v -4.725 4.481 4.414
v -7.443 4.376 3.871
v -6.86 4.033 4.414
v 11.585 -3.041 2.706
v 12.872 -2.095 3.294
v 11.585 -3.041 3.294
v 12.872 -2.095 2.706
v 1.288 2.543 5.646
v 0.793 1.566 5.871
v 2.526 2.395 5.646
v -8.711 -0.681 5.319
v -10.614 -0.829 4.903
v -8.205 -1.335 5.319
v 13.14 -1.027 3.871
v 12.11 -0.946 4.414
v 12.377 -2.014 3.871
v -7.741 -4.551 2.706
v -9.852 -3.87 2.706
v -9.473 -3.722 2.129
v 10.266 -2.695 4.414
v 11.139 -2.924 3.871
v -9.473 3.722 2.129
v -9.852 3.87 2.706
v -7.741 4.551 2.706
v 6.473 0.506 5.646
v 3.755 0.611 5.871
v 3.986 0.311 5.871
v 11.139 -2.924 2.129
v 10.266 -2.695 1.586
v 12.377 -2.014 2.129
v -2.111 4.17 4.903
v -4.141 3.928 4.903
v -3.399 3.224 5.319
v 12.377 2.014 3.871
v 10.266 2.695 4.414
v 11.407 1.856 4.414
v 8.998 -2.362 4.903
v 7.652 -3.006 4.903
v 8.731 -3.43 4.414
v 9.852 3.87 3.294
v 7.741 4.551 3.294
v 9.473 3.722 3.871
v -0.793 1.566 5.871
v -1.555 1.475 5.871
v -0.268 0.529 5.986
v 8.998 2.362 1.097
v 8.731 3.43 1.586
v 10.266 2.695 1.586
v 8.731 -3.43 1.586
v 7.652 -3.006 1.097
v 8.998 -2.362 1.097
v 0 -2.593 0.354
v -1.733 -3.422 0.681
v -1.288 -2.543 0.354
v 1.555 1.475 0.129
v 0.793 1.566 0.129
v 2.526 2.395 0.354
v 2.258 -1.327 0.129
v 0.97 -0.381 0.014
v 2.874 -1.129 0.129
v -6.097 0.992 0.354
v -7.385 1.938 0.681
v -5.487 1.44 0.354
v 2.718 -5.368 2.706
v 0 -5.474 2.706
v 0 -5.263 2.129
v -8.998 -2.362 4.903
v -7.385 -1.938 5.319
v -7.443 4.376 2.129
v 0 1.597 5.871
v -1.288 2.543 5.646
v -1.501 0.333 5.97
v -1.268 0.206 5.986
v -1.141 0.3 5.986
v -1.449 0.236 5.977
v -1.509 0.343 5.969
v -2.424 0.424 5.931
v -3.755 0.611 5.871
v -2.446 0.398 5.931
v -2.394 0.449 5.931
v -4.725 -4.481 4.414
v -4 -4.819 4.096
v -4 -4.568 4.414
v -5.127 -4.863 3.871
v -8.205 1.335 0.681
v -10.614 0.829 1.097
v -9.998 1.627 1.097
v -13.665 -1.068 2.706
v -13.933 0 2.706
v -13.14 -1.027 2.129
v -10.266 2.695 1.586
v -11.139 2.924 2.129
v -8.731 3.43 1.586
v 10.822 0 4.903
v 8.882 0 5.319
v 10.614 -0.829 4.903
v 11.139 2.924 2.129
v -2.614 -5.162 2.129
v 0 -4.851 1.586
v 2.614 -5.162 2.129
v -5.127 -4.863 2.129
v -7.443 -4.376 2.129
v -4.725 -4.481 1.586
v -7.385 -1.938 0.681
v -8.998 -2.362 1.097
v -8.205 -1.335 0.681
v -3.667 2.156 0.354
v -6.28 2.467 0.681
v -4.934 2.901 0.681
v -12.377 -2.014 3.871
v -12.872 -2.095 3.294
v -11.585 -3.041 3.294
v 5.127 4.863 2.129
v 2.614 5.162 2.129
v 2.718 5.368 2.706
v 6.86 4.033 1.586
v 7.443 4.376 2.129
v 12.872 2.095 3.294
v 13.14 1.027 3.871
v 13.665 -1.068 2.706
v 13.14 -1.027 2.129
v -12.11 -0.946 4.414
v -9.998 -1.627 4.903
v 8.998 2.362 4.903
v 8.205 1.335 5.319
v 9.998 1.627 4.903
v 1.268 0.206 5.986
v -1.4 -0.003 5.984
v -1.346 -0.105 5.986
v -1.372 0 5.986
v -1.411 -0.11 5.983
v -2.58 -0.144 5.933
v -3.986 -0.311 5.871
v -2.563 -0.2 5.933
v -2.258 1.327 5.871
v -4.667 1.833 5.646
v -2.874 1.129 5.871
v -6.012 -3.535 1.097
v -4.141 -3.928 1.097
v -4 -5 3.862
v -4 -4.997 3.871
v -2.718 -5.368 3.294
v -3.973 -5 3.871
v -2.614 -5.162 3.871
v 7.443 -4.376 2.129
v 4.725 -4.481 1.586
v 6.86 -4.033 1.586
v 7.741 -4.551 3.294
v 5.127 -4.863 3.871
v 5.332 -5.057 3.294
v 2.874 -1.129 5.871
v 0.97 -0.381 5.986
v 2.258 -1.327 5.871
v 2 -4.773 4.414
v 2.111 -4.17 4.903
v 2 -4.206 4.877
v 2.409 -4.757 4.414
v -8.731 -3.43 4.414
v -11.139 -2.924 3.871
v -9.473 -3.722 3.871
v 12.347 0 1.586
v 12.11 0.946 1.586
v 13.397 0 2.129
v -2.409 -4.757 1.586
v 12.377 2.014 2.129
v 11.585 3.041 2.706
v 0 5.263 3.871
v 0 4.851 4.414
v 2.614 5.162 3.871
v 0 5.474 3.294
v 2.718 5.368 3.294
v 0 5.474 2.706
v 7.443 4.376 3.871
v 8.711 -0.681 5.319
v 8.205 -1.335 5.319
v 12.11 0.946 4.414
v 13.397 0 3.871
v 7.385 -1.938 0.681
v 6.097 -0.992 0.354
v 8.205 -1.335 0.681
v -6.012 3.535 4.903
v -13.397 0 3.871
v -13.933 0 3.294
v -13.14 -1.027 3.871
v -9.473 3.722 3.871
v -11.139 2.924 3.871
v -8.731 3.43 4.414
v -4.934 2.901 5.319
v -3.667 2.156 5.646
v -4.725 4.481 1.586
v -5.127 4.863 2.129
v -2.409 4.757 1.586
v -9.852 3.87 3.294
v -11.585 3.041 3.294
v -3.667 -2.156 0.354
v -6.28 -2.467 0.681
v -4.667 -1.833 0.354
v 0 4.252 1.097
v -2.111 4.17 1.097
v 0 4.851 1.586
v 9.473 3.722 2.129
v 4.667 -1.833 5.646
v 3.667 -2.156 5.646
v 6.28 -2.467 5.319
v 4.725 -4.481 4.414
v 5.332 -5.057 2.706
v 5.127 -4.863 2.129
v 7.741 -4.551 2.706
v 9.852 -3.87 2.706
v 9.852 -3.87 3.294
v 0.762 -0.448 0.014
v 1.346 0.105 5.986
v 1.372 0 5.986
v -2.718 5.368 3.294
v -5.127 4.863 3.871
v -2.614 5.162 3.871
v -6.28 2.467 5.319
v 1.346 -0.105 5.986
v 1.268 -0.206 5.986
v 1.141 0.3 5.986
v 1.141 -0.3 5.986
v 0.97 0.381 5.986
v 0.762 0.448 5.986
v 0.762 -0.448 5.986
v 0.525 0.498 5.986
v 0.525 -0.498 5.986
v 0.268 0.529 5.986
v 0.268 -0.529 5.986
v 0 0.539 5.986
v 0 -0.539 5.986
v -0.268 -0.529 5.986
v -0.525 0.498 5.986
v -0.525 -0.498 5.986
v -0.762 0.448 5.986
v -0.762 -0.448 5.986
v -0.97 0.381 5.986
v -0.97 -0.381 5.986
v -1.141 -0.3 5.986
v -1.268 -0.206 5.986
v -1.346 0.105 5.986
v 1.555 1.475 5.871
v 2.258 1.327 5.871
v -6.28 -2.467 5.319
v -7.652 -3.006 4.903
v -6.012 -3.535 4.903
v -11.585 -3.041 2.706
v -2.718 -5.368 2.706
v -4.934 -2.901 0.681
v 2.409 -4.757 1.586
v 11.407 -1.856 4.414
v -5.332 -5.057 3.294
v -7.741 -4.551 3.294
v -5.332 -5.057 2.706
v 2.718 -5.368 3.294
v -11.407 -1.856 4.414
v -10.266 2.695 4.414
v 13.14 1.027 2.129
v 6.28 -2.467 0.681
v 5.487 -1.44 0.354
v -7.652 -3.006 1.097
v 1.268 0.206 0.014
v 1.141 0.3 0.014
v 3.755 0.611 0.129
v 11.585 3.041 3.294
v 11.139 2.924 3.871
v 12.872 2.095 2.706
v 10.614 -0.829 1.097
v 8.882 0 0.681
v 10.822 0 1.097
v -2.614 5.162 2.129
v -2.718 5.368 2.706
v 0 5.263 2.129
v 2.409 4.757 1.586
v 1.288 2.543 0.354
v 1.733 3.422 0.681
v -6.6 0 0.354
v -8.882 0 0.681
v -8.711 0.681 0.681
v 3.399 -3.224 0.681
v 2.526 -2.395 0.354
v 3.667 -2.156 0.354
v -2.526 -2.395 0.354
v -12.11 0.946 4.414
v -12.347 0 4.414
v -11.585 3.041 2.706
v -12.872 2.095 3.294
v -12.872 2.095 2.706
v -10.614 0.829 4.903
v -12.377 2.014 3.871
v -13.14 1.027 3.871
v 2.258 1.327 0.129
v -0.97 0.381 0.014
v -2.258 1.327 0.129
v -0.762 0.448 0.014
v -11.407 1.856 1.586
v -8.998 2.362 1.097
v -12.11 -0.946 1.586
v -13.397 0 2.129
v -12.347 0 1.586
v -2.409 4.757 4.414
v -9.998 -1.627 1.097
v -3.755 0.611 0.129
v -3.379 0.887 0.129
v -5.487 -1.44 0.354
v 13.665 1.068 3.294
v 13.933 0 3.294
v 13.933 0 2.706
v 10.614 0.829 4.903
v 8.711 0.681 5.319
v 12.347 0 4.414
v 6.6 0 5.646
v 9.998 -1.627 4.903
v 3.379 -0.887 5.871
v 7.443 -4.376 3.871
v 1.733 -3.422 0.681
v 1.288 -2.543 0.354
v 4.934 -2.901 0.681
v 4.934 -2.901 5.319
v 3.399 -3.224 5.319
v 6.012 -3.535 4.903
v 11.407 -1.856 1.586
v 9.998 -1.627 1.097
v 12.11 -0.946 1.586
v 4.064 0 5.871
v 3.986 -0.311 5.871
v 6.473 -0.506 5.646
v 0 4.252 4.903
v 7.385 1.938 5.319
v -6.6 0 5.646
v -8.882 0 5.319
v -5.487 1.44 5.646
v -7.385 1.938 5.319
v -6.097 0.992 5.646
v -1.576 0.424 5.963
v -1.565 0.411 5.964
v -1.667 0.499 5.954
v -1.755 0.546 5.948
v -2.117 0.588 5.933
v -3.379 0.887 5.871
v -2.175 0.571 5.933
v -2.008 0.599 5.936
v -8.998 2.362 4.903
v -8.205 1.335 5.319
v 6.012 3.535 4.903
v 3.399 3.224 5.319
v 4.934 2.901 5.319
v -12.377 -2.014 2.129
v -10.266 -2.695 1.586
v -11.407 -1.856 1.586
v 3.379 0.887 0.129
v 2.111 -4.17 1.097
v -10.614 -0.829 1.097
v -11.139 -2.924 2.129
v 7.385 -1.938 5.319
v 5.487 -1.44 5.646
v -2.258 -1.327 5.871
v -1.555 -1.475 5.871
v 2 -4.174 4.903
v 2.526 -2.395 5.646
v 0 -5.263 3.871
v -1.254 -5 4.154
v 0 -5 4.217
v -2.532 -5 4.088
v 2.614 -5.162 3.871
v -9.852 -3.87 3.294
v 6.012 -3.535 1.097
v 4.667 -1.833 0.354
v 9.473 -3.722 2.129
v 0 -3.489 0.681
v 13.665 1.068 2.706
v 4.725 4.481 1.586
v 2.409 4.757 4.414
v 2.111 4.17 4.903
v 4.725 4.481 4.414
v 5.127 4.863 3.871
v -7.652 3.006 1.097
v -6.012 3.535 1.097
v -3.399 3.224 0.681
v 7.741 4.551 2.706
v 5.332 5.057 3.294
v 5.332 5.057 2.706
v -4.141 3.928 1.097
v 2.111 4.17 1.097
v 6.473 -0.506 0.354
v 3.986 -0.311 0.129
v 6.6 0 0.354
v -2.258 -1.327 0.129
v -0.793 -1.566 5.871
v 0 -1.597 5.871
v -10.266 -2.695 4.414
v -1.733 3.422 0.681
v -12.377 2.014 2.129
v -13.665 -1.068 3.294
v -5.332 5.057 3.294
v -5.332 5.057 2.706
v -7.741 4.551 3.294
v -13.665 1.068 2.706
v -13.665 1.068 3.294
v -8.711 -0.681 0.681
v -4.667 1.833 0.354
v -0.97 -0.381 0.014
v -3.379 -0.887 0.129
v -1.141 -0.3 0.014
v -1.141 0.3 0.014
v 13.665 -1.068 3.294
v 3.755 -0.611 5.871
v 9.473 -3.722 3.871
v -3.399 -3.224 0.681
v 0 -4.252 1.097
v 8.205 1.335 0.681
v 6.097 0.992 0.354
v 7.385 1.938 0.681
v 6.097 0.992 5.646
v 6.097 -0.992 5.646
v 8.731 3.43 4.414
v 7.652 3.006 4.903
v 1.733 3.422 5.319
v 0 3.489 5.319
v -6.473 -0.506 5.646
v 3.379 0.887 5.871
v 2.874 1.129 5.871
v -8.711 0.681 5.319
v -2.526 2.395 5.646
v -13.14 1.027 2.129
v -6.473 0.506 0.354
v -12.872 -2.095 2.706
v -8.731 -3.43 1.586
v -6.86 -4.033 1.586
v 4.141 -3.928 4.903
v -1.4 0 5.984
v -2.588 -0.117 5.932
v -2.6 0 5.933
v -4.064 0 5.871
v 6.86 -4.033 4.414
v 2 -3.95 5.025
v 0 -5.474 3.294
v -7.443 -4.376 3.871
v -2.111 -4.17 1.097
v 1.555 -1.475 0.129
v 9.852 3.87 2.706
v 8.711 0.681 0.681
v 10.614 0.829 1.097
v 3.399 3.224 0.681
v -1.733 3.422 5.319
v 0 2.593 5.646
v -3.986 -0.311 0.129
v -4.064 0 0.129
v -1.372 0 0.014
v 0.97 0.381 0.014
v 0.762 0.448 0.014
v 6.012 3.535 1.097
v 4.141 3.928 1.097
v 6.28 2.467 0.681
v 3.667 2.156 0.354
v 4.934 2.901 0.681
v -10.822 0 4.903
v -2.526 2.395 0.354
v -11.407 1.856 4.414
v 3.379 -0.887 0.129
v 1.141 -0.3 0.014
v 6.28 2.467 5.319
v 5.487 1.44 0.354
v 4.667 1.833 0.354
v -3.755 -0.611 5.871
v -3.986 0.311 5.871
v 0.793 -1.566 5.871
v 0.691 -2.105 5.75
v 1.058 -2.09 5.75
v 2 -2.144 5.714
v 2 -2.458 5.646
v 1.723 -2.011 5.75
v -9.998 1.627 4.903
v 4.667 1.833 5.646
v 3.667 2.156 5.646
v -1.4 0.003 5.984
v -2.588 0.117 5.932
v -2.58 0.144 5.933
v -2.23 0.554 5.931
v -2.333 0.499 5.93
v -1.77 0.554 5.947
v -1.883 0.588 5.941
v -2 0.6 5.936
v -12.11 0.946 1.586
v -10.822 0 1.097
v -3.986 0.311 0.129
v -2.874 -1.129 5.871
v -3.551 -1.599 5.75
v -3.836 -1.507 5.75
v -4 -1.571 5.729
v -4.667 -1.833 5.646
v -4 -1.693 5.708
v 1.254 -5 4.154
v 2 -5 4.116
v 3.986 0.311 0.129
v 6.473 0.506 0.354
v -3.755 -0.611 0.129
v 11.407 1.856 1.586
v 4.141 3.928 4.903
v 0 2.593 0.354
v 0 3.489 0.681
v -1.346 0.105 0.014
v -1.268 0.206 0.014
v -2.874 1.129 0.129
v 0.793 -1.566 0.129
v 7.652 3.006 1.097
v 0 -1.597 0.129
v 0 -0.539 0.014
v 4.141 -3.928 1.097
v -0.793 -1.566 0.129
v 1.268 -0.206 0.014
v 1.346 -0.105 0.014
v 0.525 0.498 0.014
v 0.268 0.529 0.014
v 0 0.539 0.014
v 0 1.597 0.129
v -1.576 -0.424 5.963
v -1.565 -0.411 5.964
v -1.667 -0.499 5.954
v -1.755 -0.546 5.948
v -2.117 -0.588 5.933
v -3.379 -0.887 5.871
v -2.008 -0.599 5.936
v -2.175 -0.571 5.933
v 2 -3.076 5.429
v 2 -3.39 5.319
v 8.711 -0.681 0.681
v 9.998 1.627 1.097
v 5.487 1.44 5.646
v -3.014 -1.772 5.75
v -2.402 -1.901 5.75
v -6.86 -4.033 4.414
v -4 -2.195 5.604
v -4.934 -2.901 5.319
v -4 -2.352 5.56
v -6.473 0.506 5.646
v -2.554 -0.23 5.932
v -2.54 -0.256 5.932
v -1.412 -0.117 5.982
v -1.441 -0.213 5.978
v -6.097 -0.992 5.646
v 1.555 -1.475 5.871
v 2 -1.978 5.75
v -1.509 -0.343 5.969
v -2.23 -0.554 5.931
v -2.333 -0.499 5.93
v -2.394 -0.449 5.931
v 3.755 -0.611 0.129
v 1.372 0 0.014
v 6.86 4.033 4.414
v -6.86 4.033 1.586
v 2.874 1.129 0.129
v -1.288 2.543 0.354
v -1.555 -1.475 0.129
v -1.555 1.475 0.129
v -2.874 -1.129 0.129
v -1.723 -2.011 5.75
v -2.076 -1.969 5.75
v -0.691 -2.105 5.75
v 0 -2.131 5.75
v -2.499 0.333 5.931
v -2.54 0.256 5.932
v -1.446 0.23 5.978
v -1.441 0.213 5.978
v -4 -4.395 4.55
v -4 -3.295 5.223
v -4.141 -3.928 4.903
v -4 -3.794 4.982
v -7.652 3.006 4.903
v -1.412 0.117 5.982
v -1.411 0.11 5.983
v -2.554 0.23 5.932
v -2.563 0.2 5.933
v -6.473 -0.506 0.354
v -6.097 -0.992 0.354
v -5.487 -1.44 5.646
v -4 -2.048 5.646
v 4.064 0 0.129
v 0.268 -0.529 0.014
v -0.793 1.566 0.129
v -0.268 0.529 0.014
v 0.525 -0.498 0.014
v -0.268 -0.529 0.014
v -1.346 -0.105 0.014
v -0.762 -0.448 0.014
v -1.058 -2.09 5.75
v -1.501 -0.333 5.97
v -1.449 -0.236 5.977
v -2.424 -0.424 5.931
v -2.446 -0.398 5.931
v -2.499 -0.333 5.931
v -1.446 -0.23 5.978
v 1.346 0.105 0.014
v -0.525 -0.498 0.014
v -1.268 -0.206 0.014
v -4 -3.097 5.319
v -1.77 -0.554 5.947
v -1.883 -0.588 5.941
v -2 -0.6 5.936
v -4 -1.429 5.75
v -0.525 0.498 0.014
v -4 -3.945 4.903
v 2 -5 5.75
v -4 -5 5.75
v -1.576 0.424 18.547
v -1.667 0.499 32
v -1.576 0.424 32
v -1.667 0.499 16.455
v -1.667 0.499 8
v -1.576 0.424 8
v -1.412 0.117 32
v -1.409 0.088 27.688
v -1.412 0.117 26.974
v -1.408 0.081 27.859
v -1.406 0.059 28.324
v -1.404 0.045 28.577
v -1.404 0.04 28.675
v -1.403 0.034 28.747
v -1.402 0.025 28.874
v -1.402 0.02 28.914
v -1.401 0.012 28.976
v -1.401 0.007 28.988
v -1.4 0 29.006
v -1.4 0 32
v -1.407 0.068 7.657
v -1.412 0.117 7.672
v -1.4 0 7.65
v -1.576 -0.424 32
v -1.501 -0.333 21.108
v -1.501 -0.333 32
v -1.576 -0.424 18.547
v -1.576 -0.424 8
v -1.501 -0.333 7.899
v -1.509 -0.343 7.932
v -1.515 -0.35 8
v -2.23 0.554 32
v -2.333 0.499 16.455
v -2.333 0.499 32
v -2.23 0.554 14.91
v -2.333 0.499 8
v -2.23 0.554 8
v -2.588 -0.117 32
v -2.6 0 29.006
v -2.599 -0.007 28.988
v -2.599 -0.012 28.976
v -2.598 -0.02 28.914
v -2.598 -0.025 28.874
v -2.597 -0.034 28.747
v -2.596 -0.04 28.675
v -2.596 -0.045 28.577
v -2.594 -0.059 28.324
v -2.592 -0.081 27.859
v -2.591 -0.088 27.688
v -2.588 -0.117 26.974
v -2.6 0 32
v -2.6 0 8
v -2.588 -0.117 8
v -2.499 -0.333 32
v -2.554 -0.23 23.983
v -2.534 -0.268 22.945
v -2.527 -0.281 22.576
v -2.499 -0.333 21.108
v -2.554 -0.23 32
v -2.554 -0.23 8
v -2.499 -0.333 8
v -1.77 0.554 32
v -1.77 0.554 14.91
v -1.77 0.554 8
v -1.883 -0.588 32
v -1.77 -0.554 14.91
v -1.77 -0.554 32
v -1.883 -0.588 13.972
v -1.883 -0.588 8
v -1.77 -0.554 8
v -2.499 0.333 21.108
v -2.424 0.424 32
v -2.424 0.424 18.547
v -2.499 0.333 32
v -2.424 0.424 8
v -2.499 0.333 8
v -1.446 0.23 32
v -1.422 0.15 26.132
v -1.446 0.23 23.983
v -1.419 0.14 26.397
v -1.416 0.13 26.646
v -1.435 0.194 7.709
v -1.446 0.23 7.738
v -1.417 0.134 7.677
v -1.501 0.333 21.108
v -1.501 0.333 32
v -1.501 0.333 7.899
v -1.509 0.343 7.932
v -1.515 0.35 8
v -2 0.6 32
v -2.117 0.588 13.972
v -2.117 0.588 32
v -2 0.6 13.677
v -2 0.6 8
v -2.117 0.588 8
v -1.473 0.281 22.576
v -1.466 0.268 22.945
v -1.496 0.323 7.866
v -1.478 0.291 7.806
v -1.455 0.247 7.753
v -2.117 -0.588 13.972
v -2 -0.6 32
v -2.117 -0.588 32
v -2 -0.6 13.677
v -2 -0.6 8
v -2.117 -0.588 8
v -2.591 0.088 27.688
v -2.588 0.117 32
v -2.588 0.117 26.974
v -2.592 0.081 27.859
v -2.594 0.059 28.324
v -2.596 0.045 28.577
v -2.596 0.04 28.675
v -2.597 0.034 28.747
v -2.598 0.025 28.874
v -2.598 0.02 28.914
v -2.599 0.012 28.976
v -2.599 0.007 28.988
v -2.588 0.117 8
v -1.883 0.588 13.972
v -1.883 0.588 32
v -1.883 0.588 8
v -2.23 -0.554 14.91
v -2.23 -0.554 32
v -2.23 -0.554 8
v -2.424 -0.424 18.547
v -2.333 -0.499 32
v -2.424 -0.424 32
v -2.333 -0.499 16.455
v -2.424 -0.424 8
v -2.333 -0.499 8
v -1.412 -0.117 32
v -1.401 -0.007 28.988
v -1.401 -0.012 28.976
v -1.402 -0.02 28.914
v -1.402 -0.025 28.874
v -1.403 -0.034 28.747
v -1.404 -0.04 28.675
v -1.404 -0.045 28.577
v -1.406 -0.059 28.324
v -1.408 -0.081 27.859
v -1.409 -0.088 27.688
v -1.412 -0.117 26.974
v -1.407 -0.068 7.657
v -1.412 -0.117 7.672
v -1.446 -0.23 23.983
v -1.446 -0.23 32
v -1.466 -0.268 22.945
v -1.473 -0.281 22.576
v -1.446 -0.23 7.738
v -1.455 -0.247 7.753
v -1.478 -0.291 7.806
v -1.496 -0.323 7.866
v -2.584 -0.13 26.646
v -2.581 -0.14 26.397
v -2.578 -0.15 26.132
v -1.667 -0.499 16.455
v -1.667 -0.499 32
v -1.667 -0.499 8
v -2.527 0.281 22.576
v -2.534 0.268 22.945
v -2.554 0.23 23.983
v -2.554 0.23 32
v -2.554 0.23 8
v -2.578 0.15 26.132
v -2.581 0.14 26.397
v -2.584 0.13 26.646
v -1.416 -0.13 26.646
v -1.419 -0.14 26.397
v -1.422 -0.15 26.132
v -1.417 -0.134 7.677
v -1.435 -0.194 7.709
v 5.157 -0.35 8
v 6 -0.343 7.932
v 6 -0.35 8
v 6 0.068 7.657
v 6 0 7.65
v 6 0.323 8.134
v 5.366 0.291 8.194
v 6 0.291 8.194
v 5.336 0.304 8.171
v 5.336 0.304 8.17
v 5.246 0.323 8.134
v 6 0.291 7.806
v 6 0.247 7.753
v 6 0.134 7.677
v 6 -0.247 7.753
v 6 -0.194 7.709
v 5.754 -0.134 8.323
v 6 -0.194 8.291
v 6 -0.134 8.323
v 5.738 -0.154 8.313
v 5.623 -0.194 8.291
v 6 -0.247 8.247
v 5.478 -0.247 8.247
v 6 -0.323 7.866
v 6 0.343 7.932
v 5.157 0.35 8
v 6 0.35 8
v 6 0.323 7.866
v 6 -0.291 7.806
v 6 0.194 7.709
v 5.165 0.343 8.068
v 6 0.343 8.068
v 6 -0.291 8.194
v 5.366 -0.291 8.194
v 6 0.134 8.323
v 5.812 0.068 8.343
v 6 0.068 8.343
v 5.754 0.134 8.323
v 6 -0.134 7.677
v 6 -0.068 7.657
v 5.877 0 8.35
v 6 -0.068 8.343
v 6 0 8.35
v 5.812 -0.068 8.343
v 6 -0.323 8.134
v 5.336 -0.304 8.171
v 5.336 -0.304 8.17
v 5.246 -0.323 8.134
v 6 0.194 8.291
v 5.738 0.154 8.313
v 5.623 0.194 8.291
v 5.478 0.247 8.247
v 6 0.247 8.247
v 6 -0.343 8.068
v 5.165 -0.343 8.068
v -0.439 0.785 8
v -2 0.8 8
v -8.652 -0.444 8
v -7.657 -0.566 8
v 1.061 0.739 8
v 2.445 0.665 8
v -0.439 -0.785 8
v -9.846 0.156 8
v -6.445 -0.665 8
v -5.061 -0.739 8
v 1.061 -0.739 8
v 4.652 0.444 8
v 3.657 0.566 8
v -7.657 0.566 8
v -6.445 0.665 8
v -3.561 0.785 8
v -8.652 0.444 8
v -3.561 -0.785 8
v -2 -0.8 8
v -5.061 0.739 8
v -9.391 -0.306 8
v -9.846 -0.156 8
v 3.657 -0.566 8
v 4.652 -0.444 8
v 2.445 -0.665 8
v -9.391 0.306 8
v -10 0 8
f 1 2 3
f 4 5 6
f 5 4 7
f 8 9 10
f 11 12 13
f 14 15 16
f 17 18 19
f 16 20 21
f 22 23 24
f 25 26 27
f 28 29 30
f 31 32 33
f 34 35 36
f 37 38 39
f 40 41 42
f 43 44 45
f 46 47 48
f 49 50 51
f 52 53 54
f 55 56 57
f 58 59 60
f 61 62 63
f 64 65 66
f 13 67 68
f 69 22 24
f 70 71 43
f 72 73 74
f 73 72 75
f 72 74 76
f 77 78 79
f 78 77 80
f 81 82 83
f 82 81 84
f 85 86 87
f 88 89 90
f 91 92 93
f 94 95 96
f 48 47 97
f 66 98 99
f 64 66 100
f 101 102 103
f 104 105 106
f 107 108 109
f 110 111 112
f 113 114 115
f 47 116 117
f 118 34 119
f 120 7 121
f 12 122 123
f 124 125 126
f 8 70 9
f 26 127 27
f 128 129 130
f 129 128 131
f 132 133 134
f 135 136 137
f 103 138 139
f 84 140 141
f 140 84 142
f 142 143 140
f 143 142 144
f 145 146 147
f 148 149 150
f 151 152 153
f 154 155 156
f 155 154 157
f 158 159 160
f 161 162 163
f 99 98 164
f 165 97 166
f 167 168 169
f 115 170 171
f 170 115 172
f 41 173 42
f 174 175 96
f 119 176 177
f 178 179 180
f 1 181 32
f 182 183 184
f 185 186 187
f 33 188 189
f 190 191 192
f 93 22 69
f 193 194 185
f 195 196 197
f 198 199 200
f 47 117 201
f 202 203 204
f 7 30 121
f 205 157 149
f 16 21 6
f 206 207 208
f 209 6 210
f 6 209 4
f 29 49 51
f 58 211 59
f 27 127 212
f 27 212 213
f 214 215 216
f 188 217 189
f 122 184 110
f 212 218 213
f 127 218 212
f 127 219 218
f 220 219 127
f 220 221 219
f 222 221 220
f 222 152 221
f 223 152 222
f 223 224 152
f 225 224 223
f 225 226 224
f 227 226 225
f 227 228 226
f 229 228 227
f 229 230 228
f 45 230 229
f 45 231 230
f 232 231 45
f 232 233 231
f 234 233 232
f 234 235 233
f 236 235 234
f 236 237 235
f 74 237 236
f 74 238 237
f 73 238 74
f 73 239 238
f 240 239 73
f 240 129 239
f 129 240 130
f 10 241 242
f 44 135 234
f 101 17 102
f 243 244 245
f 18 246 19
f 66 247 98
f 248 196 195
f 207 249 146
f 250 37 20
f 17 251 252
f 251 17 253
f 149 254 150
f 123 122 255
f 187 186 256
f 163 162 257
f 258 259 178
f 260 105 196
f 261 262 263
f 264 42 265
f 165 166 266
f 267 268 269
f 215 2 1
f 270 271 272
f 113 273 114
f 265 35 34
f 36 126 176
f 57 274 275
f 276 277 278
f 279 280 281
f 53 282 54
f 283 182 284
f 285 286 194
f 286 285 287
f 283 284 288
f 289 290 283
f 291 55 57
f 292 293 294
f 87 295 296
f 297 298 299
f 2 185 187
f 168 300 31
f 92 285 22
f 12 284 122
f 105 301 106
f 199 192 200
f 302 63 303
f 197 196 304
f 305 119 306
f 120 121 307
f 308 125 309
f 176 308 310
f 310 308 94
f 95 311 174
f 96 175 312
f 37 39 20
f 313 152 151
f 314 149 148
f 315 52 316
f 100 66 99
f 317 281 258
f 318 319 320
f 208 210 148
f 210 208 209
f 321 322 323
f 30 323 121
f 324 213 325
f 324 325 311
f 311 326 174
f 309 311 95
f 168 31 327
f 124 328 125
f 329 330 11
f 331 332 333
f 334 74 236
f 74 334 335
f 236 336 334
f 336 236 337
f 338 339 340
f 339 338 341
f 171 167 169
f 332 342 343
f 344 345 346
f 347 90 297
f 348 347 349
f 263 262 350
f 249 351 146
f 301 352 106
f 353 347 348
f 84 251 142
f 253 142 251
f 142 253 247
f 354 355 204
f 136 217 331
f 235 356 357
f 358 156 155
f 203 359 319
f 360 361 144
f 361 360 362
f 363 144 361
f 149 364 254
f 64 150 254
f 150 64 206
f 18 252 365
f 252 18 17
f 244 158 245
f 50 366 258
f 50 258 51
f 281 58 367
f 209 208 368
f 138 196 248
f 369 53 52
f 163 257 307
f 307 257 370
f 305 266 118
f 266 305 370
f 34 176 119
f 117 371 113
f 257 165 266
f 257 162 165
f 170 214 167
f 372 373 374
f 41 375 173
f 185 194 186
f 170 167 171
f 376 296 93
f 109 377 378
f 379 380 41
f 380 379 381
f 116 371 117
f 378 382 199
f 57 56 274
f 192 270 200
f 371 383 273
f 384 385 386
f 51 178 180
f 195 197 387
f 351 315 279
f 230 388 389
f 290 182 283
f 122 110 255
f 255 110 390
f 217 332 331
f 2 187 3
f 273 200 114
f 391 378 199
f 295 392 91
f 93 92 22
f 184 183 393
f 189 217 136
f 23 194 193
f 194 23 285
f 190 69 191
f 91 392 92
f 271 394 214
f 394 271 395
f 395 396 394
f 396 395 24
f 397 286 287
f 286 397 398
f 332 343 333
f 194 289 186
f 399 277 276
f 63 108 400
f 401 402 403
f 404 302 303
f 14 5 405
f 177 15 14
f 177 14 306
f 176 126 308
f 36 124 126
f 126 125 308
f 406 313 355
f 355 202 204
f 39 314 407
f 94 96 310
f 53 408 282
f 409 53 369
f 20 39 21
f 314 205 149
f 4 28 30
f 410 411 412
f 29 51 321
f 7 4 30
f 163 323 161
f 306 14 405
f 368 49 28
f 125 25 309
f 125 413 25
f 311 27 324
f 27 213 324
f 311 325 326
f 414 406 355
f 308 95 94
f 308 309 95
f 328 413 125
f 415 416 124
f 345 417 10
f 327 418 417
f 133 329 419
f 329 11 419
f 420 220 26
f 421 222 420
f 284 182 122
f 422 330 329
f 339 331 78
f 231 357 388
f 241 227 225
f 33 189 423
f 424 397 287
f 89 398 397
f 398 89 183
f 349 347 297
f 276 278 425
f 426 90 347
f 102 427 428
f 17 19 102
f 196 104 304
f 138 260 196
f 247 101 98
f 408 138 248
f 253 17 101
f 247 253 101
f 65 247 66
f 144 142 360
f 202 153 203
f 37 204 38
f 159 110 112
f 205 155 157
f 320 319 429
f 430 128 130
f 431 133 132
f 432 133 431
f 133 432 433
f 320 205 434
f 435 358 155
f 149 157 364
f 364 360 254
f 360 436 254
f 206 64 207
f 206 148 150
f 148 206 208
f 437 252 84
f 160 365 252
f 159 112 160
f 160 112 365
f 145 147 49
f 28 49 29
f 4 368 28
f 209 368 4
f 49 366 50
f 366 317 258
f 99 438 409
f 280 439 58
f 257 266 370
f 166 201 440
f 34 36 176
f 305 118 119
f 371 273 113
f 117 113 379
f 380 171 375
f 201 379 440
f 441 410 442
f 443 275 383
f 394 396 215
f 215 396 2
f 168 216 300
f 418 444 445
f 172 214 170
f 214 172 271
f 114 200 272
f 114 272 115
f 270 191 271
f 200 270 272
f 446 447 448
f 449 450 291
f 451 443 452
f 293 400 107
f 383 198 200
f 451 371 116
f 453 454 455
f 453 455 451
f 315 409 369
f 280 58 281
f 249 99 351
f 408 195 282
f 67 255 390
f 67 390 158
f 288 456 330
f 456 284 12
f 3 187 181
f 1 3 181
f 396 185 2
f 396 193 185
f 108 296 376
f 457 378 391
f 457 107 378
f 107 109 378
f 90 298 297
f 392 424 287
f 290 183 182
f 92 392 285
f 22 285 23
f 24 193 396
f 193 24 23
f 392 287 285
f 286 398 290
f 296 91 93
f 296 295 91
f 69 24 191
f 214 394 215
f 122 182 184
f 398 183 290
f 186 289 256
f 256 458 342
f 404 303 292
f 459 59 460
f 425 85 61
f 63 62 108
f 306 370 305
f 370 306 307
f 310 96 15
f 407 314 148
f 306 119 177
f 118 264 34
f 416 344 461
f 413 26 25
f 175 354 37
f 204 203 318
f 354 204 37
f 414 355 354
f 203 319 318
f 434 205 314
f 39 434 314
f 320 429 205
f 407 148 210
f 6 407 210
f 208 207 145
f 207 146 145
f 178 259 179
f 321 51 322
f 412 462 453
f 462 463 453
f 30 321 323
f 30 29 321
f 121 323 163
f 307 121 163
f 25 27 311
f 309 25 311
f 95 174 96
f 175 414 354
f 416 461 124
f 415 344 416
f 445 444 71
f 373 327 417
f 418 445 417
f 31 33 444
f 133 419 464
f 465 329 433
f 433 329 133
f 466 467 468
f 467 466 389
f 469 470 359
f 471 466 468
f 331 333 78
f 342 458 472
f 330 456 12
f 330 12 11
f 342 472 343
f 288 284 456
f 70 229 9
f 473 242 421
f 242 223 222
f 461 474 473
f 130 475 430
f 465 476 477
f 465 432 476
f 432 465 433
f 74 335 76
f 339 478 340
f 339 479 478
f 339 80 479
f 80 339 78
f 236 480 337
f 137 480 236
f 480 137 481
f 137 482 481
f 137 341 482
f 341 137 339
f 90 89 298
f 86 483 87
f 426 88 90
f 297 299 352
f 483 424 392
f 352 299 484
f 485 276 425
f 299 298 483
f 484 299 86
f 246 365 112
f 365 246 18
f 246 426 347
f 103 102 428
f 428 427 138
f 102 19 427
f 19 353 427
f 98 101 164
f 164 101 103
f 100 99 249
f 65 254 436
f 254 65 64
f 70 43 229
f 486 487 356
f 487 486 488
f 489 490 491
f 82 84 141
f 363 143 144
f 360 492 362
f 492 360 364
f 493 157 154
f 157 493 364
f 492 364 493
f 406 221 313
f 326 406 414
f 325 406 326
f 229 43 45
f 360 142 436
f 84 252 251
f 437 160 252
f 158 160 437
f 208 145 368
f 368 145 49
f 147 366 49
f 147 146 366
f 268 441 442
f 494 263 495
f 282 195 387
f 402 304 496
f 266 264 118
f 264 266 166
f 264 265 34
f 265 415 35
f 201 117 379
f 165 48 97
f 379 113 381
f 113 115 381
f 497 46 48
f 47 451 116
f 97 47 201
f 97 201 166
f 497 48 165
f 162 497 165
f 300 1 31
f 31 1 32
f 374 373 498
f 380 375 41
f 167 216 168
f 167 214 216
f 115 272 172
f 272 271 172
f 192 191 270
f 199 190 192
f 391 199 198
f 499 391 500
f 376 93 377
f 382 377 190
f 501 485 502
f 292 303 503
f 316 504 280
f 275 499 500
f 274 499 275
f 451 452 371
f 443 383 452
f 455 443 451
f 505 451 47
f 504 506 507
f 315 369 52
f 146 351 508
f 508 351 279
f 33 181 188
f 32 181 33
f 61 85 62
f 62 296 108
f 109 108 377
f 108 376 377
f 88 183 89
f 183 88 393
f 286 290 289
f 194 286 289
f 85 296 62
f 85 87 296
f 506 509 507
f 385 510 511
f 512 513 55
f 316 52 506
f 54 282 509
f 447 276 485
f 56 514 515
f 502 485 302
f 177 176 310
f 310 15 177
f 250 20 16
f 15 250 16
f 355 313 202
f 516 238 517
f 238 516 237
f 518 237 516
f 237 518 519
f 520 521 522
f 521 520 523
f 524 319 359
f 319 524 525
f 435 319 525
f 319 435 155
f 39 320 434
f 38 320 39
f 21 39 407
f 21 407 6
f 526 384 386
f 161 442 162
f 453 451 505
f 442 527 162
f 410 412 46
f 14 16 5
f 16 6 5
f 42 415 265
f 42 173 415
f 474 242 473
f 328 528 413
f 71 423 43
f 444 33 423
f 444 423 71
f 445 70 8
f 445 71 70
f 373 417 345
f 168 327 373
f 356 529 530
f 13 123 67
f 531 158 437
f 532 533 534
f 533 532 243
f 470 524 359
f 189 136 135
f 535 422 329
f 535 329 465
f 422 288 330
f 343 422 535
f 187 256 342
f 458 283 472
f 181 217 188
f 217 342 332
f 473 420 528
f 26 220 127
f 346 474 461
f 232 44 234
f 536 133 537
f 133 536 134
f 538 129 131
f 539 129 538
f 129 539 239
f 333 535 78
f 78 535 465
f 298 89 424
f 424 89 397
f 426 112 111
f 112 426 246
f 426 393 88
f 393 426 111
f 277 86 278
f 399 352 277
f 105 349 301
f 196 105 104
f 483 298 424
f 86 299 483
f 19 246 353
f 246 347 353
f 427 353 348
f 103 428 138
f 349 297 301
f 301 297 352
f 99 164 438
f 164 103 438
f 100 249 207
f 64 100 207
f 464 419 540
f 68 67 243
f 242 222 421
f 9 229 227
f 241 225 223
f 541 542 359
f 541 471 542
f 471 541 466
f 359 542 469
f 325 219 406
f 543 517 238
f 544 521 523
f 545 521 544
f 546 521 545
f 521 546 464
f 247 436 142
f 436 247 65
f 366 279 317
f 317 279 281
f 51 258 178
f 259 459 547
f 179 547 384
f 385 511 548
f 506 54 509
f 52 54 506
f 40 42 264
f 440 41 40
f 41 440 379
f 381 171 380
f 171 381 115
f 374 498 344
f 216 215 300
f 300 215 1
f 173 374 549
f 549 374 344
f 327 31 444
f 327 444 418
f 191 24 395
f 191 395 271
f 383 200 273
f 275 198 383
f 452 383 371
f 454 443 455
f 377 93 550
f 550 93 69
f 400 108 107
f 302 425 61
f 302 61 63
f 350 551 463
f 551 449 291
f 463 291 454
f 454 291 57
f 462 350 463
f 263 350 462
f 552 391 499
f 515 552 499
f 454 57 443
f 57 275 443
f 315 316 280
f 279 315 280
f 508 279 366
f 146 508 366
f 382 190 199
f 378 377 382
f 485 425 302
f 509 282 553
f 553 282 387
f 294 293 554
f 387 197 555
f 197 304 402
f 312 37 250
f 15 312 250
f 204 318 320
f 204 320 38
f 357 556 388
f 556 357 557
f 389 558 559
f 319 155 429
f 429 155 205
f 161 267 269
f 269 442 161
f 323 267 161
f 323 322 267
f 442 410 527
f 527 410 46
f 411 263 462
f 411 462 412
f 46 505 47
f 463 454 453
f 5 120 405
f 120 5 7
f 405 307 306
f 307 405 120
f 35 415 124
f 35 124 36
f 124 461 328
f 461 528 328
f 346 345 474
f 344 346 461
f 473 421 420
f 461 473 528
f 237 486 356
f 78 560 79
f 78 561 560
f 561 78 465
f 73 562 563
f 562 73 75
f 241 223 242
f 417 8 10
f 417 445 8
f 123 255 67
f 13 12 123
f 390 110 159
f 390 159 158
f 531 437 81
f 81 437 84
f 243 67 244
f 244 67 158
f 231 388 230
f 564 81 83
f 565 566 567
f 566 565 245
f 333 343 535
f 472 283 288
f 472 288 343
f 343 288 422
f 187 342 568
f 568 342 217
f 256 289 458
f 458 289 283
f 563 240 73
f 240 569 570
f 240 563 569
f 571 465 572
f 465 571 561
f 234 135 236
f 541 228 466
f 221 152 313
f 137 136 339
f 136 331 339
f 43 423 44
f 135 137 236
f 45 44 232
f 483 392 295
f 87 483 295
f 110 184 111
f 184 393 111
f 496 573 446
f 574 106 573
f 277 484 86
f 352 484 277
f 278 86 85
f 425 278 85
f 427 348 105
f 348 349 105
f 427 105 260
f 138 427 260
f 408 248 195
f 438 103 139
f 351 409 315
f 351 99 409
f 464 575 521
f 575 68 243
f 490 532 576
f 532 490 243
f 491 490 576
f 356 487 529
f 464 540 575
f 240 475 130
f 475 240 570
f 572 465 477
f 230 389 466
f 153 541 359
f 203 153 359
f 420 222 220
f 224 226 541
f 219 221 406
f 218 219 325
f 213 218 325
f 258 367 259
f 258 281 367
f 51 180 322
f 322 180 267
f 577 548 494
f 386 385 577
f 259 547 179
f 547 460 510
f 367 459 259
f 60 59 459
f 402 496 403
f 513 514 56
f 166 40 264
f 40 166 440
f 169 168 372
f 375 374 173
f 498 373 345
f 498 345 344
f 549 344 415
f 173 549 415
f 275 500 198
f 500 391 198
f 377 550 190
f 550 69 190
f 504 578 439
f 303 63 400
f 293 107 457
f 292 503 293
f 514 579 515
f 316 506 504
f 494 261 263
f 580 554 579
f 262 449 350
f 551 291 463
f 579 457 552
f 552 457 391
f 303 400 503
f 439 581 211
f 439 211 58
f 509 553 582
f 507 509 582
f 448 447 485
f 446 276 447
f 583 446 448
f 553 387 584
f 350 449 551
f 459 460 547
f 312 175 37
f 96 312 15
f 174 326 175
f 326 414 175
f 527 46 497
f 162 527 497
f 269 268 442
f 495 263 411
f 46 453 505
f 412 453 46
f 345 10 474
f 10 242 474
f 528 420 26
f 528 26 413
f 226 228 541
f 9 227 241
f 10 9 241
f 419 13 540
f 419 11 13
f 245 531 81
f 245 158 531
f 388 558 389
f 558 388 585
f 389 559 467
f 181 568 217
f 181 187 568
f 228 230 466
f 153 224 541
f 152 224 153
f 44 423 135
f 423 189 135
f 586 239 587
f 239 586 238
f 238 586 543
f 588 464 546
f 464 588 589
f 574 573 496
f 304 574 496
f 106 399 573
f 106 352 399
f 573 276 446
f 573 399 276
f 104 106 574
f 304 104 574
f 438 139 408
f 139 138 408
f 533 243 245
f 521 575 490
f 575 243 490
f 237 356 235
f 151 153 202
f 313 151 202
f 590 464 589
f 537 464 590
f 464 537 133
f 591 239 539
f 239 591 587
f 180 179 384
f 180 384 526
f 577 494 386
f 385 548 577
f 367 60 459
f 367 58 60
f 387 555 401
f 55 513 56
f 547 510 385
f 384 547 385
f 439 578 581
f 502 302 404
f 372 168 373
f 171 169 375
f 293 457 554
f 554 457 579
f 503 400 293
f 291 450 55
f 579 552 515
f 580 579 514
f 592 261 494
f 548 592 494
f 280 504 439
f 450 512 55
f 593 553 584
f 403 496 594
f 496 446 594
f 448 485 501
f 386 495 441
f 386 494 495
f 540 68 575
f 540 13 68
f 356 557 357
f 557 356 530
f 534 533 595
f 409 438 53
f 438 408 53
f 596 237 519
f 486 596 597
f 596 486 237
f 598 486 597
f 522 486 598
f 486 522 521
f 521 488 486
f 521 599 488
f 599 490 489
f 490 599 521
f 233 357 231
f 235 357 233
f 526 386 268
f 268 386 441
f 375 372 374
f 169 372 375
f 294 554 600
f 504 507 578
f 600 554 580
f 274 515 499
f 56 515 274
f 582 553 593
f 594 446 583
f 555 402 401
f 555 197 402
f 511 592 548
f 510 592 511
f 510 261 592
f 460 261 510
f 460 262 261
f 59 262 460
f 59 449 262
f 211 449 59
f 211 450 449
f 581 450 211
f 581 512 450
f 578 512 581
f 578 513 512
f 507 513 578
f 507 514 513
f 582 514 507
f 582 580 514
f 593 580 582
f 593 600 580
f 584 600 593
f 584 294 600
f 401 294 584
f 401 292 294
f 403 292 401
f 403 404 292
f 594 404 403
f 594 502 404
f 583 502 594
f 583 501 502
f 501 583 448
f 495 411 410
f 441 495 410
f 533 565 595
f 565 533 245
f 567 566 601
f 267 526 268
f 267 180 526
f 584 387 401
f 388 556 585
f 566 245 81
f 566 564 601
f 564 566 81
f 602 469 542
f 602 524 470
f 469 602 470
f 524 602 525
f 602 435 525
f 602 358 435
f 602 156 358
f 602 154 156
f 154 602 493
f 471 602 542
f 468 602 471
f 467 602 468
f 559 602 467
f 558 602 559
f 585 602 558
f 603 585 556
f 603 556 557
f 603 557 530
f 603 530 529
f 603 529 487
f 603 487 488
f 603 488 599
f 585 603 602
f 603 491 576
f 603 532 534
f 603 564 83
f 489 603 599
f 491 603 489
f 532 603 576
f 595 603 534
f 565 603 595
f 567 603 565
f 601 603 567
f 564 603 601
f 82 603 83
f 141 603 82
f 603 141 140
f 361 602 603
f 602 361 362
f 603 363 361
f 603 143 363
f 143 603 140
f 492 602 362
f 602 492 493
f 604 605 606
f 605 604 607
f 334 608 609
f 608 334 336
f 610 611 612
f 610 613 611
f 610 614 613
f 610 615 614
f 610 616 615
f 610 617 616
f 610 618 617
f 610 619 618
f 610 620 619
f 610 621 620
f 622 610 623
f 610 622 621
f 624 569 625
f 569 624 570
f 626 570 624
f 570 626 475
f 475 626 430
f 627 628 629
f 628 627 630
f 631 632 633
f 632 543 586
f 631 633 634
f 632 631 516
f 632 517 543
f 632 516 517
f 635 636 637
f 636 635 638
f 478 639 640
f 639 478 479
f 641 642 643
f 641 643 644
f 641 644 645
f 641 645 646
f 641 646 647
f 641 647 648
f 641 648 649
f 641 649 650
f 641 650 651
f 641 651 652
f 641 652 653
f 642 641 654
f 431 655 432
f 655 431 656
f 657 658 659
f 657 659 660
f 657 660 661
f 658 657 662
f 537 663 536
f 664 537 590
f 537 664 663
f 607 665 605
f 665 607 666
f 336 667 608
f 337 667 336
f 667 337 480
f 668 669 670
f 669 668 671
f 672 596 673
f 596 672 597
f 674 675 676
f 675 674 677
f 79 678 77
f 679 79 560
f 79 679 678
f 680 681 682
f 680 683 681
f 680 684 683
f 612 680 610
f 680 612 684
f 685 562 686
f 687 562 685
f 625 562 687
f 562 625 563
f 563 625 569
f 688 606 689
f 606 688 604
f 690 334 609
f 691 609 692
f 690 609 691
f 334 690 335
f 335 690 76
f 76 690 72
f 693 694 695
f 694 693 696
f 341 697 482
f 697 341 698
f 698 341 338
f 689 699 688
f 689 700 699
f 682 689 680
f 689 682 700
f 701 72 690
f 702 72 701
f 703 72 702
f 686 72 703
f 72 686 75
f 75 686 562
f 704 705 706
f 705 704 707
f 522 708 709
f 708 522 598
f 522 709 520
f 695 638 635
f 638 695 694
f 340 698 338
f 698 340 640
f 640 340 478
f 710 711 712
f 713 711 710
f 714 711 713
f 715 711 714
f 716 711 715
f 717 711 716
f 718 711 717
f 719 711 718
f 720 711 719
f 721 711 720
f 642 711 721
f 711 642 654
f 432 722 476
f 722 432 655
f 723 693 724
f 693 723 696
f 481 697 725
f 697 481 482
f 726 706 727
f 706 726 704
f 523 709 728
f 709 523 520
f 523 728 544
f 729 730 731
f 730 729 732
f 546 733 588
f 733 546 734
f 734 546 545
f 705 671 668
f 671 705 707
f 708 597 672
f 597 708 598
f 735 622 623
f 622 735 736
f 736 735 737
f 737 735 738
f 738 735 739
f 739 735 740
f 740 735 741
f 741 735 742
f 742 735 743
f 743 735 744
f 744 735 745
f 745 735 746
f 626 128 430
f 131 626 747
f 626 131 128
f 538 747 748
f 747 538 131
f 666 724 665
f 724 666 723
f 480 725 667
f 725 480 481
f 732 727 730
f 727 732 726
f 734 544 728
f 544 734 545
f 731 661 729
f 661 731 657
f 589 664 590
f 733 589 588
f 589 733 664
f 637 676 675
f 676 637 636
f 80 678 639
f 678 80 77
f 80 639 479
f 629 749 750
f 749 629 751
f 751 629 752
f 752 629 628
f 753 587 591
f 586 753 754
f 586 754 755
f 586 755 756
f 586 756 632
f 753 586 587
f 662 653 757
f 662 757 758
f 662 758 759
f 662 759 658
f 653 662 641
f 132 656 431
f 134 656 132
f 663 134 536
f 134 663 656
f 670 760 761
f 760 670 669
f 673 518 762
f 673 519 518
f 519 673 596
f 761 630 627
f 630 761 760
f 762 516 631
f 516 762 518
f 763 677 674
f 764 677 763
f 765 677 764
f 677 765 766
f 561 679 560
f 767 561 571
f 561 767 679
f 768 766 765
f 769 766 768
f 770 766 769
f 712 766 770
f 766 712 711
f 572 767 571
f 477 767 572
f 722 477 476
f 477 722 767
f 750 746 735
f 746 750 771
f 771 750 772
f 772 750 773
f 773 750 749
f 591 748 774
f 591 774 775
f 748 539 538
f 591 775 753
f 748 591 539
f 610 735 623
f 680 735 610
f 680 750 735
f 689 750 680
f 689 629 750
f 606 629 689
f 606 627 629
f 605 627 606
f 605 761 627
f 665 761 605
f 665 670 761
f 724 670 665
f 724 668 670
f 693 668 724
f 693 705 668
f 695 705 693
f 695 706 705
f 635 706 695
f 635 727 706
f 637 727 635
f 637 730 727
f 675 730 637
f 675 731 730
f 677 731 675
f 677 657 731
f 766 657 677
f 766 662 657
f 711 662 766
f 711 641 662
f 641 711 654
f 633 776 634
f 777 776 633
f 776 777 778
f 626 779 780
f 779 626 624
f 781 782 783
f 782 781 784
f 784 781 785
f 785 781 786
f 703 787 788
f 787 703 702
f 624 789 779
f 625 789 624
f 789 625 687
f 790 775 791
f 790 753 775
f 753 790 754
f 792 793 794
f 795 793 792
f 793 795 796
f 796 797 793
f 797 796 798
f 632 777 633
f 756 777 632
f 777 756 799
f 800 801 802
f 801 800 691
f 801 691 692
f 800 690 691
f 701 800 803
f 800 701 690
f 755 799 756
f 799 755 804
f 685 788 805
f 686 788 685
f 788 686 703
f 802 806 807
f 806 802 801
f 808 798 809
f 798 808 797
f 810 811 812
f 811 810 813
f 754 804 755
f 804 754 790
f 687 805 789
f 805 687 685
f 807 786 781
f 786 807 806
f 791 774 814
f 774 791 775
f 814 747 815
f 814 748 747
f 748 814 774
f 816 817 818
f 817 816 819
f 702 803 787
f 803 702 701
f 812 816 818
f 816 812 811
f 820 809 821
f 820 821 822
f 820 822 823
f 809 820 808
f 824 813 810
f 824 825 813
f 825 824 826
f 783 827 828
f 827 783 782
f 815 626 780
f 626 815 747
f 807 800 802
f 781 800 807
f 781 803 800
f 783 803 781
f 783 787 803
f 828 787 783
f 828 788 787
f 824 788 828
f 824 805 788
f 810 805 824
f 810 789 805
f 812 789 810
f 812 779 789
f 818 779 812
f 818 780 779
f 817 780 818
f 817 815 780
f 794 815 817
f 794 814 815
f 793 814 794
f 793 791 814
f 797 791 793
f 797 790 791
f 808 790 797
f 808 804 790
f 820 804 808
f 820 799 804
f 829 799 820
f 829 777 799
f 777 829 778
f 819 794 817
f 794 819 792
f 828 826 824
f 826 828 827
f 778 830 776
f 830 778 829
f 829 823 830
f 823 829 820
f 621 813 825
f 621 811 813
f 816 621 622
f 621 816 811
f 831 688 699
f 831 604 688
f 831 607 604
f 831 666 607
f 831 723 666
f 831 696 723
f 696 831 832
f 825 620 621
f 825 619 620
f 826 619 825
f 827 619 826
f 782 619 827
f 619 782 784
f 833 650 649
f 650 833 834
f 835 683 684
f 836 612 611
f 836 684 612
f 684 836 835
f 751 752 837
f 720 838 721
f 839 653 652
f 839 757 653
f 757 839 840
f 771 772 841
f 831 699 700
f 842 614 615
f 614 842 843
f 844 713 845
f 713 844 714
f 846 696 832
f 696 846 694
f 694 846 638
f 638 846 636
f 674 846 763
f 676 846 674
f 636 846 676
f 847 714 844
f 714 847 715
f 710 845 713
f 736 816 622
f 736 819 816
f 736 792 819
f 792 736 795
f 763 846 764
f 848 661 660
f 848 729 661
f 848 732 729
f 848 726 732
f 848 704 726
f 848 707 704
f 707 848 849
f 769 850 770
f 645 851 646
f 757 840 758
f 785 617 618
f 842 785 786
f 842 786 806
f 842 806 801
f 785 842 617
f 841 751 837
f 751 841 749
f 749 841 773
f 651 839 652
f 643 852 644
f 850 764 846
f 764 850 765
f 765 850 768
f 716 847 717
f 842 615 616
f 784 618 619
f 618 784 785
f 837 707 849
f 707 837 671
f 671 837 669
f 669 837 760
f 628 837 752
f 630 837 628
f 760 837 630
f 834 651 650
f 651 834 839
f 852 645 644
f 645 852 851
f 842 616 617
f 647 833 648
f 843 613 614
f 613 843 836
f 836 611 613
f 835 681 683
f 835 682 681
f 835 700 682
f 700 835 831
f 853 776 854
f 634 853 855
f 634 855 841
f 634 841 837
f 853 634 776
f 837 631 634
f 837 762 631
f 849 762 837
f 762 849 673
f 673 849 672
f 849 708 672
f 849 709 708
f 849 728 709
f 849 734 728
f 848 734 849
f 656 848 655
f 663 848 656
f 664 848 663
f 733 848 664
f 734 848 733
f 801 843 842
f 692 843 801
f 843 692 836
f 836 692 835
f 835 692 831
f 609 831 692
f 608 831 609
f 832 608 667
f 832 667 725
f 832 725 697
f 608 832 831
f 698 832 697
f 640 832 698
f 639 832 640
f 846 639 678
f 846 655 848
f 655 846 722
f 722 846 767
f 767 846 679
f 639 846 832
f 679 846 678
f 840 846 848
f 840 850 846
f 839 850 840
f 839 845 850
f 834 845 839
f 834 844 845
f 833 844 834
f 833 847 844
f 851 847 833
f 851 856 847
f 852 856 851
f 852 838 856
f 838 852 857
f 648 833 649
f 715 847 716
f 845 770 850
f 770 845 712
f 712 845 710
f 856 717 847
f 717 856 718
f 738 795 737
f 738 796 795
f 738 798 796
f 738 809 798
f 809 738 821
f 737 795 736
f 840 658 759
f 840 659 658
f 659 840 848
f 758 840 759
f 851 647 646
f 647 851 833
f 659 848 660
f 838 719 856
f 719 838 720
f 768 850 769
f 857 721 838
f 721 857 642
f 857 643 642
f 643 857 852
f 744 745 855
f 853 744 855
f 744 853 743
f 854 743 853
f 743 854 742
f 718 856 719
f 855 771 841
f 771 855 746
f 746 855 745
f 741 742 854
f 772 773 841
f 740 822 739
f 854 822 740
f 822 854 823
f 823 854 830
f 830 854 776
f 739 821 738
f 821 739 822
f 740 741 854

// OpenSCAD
$fn = 32;

// ---- Parameters ----
HULL   = [14, 5.5, 3];   // hull ellipsoid semi-axes (x, y, z)
HULL_C = [0, 0, 3];      // hull center (bottom touches Z = 0)
MAST_X = -2;             // mast position along X
MAST_BOT = 3;            // mast base (buried inside hull)
MAST_TOP = 32;           // mast top
BOOM_Z = 8;              // boom / sail base height

module hull() {
    translate(HULL_C) scale(HULL) sphere(r = 1);
}

module cabin() {
    // small cabin box on the deck, centered near midship
    translate([-1, -2.5, 4.5]) cube([6, 5, 2.5], center = true);
}

module mast() {
    // vertical mast, base buried in the hull interior
    translate([MAST_X, 0, MAST_BOT])
        cylinder(h = MAST_TOP - MAST_BOT, r = 0.6);
}

module boom() {
    // horizontal spar along +X at sail base height
    translate([MAST_X, 0, BOOM_Z])
        rotate([0, 90, 0])
            cylinder(h = 8, r = 0.35);
}

module sail() {
    // triangular sail: tall cone (r2 -> 0) flattened thin in Y,
    // apex merges into the mast near the top
    translate([MAST_X, 0, BOOM_Z])
        scale([1, 0.1, 1])
            cylinder(h = 22, r1 = 8, r2 = 0.25);
}

module sailboat() {
    color("saddlebrown") hull();
    color("floralwhite") cabin();
    color("peru") mast();
    color("peru") boom();
    color("whitesmoke") sail();
}

sailboat();
